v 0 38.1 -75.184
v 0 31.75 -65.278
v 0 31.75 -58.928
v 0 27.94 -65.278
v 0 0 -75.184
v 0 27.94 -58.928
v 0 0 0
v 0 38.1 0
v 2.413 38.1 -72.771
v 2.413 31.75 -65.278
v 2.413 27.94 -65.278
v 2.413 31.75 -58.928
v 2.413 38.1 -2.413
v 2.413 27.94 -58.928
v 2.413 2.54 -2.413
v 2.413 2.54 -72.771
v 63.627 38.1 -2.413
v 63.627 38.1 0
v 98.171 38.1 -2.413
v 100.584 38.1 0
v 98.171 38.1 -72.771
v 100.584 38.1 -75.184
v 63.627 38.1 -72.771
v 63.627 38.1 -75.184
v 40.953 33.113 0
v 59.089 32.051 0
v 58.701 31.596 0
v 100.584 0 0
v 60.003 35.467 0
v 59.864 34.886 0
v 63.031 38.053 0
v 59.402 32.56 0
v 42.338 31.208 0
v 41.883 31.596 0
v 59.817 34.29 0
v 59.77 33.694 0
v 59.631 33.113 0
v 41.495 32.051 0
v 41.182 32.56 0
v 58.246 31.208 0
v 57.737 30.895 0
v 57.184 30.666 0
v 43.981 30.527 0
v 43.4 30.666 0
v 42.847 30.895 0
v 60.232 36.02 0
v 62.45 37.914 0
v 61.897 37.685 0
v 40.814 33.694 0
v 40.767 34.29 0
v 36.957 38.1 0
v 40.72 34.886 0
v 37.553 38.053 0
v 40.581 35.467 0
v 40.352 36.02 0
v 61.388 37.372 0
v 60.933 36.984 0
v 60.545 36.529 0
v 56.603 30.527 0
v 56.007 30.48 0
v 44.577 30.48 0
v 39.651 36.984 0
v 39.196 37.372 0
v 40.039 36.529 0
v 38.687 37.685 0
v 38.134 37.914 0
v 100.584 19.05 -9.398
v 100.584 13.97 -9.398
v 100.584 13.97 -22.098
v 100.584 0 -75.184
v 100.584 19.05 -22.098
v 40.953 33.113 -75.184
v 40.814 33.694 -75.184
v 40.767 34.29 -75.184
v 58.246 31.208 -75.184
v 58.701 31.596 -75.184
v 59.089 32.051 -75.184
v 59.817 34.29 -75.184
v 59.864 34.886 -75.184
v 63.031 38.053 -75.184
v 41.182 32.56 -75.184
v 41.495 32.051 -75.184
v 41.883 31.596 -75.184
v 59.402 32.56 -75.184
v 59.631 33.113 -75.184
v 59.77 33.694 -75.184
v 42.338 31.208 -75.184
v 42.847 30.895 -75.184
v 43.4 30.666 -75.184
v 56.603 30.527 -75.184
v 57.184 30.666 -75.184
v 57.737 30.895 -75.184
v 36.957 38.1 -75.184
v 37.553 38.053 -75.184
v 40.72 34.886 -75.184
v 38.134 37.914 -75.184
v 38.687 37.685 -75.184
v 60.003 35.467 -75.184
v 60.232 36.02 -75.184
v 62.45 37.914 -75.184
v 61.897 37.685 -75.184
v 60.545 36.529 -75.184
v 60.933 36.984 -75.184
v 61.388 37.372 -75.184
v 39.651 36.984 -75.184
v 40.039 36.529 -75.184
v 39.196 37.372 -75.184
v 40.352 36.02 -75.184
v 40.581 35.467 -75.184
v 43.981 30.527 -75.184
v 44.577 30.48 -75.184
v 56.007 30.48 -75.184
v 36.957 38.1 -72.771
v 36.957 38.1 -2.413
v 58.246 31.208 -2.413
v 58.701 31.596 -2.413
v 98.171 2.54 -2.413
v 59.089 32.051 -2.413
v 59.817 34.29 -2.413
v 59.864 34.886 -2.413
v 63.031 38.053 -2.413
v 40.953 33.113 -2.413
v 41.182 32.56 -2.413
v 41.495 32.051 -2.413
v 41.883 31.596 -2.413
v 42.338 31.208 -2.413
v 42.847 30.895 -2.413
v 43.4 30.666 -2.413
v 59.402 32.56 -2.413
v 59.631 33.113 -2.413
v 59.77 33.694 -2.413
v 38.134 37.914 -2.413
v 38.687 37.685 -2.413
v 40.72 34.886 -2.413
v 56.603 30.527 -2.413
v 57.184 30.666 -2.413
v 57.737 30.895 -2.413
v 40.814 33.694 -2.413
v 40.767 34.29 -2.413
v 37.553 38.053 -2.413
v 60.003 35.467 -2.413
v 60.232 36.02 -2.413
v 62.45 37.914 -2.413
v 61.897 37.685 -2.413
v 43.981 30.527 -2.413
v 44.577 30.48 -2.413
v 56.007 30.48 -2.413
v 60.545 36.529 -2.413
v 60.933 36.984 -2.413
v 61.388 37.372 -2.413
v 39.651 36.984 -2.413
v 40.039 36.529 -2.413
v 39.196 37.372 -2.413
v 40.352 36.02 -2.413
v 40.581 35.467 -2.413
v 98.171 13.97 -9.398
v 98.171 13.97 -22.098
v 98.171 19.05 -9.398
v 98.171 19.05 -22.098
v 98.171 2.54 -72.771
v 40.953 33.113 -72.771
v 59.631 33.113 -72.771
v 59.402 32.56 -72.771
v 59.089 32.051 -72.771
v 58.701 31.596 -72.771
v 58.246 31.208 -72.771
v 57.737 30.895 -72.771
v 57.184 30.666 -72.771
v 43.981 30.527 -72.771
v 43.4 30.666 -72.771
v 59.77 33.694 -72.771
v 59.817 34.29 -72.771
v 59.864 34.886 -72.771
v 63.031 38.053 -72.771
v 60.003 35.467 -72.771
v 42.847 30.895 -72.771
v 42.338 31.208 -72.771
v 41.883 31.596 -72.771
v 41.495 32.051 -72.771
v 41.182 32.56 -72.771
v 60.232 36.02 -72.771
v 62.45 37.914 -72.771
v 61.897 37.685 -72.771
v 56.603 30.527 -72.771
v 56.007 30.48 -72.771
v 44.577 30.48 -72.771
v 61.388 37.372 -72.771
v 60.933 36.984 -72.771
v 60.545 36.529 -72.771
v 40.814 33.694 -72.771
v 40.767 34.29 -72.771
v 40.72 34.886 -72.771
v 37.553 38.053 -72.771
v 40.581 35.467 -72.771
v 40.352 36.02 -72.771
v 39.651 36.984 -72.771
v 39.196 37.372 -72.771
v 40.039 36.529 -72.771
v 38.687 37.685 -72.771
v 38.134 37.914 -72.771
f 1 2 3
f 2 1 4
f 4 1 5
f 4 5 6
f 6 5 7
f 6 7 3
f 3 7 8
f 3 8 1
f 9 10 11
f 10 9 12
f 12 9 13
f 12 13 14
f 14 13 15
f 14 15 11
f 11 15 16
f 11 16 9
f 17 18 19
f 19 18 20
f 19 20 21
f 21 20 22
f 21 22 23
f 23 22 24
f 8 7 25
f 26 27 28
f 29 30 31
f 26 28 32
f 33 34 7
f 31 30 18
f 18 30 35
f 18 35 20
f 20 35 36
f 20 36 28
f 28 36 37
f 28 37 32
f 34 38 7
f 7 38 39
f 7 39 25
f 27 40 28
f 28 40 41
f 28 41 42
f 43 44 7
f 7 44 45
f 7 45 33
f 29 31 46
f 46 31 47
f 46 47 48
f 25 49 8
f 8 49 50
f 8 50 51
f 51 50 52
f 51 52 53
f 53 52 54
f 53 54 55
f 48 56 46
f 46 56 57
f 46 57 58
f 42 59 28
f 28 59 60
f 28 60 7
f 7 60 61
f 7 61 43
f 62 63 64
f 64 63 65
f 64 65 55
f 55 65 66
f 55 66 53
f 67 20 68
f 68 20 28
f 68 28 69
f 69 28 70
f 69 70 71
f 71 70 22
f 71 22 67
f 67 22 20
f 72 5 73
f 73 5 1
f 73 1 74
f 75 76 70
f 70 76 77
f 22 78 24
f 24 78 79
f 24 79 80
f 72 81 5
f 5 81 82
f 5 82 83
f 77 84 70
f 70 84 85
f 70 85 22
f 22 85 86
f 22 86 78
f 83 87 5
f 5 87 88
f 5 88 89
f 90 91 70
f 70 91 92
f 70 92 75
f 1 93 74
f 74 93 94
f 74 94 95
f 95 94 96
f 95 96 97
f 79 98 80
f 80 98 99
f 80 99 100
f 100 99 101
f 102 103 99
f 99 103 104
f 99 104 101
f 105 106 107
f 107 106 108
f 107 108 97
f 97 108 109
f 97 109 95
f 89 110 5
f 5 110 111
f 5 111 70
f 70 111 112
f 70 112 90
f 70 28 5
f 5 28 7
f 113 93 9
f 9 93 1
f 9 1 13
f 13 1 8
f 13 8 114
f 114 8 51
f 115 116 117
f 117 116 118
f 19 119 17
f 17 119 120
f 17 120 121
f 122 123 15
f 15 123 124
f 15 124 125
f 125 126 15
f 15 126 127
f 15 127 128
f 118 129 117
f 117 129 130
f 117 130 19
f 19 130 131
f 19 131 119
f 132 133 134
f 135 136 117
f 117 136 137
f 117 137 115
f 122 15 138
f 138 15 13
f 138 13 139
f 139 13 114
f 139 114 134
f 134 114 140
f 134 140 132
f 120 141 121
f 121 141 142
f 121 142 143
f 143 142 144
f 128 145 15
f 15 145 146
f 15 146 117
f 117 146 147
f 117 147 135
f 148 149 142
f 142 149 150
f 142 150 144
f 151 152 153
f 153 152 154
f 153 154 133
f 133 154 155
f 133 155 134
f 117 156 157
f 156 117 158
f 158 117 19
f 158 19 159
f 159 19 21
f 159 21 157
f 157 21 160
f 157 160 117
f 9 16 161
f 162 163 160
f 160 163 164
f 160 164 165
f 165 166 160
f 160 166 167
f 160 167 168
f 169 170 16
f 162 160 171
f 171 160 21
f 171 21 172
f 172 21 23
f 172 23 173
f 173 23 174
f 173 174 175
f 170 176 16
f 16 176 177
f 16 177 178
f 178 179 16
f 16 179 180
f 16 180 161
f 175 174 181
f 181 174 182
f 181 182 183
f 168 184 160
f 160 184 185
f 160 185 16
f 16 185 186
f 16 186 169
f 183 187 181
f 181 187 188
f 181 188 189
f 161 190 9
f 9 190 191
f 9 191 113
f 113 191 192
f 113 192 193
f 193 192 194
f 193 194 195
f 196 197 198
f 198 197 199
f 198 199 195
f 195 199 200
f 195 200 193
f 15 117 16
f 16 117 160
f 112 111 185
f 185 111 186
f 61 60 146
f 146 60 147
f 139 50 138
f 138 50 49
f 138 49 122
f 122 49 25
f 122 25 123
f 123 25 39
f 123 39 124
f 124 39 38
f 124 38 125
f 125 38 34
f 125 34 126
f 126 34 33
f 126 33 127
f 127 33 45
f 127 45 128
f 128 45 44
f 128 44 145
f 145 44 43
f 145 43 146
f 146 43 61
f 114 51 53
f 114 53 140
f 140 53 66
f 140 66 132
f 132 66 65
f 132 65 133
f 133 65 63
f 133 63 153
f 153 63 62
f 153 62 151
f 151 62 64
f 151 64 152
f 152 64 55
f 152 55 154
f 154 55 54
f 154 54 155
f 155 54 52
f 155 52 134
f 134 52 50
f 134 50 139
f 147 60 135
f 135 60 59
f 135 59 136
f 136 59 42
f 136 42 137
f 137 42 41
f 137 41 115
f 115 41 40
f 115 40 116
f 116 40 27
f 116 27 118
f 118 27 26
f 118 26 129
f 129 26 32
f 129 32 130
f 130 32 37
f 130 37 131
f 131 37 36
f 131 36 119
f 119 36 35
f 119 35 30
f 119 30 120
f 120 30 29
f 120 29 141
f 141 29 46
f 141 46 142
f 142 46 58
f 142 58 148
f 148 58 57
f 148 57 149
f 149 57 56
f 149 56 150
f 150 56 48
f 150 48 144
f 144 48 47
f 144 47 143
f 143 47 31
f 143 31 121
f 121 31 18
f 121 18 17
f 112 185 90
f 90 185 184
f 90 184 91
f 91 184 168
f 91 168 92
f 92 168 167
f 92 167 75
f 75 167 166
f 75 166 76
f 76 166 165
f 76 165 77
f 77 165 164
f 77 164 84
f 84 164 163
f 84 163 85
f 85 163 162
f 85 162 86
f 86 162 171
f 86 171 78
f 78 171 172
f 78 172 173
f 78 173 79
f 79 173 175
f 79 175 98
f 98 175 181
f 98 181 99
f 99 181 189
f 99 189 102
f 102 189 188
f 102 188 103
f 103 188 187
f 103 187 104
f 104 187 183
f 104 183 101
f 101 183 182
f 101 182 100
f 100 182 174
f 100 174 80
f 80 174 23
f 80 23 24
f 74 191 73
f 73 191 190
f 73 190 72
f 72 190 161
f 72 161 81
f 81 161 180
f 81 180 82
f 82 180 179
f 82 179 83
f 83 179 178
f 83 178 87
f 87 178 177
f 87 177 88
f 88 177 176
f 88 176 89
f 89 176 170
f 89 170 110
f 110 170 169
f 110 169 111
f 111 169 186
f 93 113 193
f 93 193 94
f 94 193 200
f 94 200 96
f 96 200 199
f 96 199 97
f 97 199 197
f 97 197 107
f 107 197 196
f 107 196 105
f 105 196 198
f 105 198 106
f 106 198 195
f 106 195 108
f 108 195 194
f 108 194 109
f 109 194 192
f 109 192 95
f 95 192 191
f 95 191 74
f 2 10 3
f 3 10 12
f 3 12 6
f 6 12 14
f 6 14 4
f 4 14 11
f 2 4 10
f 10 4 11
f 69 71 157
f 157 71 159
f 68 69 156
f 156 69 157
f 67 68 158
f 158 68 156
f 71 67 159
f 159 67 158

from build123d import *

# Parameters (mm, degrees)
SKETCH1_W           = 100.584
SKETCH1_H           = 75.184
BOSS_EXTRUDE1_DEPTH = 2.54
SKETCH2_W           = 100.584
SKETCH2_H           = 75.184
SKETCH2_W_2         = 95.758
SKETCH2_H_2         = 70.358
BOSS_EXTRUDE2_DEPTH = 35.56
SKETCH3_W           = 19.05
SKETCH3_H           = 7.62
CUT_EXTRUDE1_DEPTH  = 132.230274373
FILLET1_R           = 3.81
SKETCH4_W           = 6.35
SKETCH4_H           = 3.81
CUT_EXTRUDE2_DEPTH  = 6.35
SKETCH5_W           = 12.7
SKETCH5_H           = 5.08
CUT_EXTRUDE3_DEPTH  = 6.35


with BuildPart() as part:
    # Sketch1 → Boss-Extrude1 (new body)
    with BuildSketch(Plane(origin=(0, 0, 0), x_dir=(1, 0, 0), z_dir=(0, 1, 0))):
        with Locations((50.292, 37.592)):
            Rectangle(SKETCH1_W, SKETCH1_H)
    extrude(amount=BOSS_EXTRUDE1_DEPTH)

    # Sketch2 → Boss-Extrude2 (add)
    with BuildSketch(Plane(origin=(0, 2.54, 0), x_dir=(1, 0, 0), z_dir=(0, 1, 0))):
        with Locations((50.292, 37.592)):
            Rectangle(SKETCH2_W, SKETCH2_H)
        with Locations((50.292, 37.592)):
            Rectangle(SKETCH2_W_2, SKETCH2_H_2, mode=Mode.SUBTRACT)
    extrude(amount=BOSS_EXTRUDE2_DEPTH)

    # Sketch3 → Cut-Extrude1 (cut, through all)
    with BuildSketch(Plane(origin=(0, 0, -75.184), x_dir=(-1, 0, 0), z_dir=(0, 0, -1))):
        with Locations((-50.292, 34.29)):
            Rectangle(SKETCH3_W, SKETCH3_H)
    extrude(amount=-CUT_EXTRUDE1_DEPTH, mode=Mode.SUBTRACT)

    # Fillet1
    fillet1_edges = [part.edges().sort_by_distance(p)[0] for p in [
        (40.767, 30.48, -1.2065),
        (59.817, 30.48, -1.2065),
        (59.817, 30.48, -73.9775),
        (40.767, 30.48, -73.9775),
    ]]
    fillet(fillet1_edges, radius=FILLET1_R)
    fillet1_2_edges = [part.edges().sort_by_distance(p)[0] for p in [
        (40.767, 38.1, -1.2065),
        (59.817, 38.1, -1.2065),
        (59.817, 38.1, -73.9775),
        (40.767, 38.1, -73.9775),
    ]]
    fillet(fillet1_2_edges, radius=FILLET1_R - 0.0001)  # a hair under: the kernel refuses the full size

    # Sketch4 → Cut-Extrude2 (cut)
    with BuildSketch(Plane.ZY):
        with Locations((-62.103, 29.845254)):
            Rectangle(SKETCH4_W, SKETCH4_H)
    extrude(amount=-CUT_EXTRUDE2_DEPTH, mode=Mode.SUBTRACT)

    # Sketch5 → Cut-Extrude3 (cut)
    with BuildSketch(Plane(origin=(100.584, 0, 0), x_dir=(0, 0, -1), z_dir=(1, 0, 0))):
        with Locations((15.748, 16.510254)):
            Rectangle(SKETCH5_W, SKETCH5_H)
    extrude(amount=-CUT_EXTRUDE3_DEPTH, mode=Mode.SUBTRACT)


solid = part.part
